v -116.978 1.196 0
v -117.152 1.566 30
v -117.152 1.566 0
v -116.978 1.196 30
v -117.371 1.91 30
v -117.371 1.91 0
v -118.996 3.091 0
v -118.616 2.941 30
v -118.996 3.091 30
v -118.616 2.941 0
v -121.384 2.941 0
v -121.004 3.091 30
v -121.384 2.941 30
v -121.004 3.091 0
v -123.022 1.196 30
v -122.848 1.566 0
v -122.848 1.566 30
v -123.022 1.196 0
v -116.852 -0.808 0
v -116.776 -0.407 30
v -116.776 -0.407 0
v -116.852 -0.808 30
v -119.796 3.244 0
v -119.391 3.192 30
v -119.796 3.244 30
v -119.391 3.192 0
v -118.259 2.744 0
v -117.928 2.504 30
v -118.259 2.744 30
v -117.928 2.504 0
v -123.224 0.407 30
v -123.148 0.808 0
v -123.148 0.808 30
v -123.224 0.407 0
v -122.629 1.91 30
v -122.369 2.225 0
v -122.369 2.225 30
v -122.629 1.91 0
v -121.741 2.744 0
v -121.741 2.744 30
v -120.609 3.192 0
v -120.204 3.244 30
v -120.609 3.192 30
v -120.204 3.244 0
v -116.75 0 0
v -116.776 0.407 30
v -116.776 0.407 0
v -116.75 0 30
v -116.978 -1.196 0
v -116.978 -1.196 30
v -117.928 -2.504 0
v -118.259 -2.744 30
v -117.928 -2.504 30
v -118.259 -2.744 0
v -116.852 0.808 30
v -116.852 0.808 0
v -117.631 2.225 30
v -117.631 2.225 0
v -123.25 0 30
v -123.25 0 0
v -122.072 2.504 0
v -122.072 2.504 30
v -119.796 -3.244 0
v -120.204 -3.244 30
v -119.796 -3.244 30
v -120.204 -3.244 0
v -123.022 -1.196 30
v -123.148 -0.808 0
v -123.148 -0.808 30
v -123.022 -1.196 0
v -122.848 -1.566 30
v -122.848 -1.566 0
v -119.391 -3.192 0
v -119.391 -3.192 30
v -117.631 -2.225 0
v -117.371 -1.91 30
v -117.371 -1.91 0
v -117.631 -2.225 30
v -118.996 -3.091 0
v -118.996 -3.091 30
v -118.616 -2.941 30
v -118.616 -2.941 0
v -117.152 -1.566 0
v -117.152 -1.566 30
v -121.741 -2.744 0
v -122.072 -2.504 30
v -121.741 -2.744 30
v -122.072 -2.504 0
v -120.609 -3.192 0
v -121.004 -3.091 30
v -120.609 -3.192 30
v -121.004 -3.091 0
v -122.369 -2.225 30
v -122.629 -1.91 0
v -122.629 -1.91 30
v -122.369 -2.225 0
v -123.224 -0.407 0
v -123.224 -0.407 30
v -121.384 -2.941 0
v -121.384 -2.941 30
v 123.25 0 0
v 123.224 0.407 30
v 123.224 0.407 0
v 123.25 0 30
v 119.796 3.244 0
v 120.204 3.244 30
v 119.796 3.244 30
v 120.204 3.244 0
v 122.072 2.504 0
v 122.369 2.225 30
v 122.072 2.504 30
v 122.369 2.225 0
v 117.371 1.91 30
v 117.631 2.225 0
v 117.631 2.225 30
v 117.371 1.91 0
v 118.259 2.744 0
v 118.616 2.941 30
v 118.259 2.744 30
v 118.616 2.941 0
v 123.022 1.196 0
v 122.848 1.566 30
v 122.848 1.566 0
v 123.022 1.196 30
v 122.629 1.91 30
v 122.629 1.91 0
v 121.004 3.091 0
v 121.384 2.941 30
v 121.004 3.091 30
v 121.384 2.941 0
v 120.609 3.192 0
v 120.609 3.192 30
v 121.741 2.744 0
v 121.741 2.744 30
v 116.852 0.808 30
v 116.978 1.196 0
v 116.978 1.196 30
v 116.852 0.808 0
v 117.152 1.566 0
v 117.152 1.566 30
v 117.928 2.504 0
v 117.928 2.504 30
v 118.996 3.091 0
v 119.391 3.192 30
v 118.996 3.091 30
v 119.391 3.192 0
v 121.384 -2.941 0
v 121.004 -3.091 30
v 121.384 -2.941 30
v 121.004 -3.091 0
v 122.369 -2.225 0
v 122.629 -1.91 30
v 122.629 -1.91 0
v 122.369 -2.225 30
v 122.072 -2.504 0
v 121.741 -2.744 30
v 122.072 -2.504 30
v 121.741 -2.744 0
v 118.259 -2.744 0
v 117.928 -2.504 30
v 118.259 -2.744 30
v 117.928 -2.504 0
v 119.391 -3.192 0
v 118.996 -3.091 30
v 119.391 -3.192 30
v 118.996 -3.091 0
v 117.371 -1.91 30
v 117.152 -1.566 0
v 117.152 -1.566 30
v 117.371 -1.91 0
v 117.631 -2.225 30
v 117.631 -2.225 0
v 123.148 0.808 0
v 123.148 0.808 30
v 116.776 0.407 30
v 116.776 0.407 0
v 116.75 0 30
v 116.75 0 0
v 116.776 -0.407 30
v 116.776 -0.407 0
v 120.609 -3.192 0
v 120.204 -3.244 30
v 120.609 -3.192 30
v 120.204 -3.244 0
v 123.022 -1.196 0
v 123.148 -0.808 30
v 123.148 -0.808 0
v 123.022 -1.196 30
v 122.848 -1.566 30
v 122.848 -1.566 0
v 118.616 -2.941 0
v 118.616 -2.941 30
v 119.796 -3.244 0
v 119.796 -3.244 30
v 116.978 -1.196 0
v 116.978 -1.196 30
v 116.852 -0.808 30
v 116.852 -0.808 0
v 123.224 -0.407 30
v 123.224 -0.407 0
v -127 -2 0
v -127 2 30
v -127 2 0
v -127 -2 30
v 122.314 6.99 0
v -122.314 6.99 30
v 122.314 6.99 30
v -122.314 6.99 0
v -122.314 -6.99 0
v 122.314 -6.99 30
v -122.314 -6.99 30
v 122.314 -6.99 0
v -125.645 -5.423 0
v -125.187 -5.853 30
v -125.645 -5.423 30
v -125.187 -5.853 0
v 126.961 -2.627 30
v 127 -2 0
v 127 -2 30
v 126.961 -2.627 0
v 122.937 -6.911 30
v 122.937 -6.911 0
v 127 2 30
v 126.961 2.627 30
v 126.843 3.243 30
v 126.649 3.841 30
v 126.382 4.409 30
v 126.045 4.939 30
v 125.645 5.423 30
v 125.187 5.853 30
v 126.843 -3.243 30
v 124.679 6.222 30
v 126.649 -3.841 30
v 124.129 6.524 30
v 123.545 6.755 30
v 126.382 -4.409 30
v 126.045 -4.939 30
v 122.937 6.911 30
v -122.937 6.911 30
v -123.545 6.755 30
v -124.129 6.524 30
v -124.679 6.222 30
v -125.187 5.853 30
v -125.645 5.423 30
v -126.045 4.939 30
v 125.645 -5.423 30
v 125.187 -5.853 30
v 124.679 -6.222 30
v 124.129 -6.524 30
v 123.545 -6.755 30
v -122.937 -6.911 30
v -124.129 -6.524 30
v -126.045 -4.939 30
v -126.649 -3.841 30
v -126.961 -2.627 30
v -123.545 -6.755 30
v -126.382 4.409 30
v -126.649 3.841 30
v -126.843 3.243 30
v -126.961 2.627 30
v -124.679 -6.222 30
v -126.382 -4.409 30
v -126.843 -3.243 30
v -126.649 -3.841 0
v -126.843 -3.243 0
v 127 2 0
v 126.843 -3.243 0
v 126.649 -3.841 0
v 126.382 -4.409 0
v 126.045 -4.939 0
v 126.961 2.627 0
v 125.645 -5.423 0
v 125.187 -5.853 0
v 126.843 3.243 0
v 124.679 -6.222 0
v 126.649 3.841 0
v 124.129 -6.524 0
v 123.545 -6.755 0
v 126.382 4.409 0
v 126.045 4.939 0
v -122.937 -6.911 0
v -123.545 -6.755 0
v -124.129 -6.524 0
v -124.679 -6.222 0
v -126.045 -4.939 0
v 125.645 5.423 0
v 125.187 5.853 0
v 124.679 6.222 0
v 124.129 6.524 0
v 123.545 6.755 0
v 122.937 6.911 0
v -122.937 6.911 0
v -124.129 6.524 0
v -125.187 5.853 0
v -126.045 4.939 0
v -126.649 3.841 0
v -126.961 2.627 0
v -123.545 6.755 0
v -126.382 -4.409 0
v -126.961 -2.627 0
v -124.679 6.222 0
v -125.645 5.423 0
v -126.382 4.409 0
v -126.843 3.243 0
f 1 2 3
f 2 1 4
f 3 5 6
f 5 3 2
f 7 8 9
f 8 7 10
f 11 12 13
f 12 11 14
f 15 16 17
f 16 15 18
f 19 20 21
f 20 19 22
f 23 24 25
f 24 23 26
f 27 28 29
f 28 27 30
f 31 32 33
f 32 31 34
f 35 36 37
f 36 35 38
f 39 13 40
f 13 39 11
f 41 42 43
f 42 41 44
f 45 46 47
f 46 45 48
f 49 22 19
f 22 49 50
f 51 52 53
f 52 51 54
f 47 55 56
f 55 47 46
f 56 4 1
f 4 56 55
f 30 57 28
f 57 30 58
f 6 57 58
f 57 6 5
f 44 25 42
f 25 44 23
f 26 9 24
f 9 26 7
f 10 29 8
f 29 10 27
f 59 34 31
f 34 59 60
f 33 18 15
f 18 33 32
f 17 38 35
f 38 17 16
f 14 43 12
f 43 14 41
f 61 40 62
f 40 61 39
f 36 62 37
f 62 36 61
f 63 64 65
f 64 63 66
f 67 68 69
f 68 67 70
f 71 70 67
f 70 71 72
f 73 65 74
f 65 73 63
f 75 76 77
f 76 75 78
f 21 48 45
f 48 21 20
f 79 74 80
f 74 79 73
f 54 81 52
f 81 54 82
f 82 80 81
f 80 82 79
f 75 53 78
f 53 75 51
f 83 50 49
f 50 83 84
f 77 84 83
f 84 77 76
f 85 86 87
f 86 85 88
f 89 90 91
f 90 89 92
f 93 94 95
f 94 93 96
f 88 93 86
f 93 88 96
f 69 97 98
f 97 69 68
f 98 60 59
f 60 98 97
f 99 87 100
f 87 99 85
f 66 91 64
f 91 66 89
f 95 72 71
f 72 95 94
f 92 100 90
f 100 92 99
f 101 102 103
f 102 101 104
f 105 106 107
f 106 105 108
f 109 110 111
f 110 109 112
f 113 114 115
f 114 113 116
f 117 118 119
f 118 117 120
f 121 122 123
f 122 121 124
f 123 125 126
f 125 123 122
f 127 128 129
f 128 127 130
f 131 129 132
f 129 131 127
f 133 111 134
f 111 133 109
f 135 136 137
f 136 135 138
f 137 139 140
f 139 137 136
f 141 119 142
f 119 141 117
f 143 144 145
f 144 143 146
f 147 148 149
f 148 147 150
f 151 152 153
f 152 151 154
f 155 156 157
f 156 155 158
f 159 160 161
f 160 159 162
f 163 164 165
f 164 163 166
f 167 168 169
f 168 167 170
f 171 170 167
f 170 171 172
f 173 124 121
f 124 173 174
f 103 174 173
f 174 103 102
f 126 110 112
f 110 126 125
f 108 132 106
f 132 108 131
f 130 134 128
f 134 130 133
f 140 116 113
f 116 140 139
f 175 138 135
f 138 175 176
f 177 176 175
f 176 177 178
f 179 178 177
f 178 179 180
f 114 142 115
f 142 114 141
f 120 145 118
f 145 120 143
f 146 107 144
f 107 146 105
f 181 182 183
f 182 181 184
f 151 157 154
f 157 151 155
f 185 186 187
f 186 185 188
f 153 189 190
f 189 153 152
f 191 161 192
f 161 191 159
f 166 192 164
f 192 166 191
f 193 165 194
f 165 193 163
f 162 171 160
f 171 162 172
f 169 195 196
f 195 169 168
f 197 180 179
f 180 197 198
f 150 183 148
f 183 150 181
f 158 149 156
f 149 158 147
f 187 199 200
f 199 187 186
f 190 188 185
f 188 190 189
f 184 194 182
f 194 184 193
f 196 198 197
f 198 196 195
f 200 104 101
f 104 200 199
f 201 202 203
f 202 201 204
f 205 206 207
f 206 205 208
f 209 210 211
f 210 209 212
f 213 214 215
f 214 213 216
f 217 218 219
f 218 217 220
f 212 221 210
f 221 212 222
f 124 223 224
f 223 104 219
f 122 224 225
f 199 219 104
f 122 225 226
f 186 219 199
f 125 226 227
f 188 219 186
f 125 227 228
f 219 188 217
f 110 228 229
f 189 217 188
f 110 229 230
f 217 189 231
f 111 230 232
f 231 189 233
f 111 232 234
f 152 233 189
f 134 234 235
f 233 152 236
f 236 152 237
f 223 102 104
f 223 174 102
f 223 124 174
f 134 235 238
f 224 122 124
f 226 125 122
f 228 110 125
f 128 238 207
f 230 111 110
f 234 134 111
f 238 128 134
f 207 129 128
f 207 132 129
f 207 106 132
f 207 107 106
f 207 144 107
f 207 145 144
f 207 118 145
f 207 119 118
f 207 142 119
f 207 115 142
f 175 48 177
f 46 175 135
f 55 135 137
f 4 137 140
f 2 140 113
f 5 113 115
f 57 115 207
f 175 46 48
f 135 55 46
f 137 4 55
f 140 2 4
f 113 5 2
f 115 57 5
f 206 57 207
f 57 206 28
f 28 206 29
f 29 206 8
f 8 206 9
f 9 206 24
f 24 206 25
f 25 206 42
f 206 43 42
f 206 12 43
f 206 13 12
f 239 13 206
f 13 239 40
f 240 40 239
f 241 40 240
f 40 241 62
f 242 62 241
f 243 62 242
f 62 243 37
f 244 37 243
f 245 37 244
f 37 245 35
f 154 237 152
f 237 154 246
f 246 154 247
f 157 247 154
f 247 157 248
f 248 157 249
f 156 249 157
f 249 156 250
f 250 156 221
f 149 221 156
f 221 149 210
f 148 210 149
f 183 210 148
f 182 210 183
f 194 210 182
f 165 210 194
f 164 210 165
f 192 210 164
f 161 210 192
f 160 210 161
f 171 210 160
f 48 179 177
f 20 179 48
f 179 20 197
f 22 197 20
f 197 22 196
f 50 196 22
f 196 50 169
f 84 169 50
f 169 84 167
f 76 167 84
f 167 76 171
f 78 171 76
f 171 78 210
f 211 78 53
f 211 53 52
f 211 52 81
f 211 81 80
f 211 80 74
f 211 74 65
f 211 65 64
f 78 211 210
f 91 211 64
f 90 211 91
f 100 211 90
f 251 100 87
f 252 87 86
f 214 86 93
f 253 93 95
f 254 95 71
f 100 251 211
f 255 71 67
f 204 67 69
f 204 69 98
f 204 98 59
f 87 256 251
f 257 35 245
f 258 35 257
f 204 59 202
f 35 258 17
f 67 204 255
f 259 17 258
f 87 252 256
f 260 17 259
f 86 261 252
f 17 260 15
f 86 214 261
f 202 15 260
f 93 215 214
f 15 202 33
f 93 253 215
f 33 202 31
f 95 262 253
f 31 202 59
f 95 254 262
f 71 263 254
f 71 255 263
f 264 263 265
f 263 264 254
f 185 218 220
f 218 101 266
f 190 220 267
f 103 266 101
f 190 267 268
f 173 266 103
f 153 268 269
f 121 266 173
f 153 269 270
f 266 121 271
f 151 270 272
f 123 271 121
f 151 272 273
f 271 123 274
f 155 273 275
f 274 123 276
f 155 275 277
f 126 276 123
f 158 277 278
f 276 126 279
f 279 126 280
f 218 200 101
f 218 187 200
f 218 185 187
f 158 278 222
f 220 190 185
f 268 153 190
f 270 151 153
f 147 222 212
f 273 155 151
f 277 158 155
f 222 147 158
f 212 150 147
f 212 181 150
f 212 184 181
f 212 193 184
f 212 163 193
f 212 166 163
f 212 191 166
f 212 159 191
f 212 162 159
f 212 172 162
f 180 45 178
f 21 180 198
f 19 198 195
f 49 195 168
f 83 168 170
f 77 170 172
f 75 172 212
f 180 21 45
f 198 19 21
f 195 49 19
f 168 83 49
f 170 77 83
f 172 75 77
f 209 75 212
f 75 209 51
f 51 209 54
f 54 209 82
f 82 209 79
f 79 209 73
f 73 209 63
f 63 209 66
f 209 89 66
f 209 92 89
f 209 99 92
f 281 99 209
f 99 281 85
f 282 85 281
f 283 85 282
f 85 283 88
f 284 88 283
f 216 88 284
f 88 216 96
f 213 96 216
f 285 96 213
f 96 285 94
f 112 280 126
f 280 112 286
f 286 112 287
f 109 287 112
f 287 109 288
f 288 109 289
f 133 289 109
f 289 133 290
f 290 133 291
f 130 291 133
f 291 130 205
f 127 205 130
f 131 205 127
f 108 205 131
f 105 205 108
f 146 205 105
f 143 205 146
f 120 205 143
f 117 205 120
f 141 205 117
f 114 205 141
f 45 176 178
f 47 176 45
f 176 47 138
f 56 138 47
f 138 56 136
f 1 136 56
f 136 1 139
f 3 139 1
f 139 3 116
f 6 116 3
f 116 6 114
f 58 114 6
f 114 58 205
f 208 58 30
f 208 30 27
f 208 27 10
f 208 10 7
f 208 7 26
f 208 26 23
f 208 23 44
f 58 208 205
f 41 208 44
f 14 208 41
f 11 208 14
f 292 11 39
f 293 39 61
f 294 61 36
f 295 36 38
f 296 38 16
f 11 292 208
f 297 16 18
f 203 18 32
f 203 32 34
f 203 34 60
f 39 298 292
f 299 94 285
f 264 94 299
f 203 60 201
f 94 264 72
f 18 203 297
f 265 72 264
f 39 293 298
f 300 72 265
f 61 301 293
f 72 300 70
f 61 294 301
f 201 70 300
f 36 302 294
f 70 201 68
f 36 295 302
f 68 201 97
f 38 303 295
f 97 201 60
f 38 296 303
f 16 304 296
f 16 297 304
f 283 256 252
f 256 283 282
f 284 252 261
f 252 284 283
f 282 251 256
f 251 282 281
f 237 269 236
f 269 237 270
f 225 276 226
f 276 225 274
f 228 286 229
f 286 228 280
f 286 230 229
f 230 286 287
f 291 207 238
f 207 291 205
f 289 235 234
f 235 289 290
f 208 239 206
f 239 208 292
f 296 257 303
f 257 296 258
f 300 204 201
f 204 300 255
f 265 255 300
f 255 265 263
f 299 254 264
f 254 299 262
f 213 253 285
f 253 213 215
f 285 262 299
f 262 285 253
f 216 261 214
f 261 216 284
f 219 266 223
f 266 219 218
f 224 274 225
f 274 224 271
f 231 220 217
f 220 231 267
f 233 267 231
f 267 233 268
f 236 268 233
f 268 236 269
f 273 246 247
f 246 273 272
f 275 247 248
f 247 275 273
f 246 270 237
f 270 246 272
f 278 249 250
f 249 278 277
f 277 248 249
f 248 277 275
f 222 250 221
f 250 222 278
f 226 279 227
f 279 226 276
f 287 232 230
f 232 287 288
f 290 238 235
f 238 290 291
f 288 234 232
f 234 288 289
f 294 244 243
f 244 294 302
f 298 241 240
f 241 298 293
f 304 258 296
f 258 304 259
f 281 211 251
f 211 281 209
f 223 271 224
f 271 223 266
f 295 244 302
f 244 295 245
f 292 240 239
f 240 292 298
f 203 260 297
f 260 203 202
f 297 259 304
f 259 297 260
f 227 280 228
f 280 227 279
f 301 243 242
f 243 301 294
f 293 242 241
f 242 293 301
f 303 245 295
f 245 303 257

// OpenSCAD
$fn = 50;


difference() {
	union() {
		hull() {
			translate(v = [-122.0000000000, 2.0000000000, 0]) {
				cylinder(h = 30, r = 5);
			}
			translate(v = [122.0000000000, 2.0000000000, 0]) {
				cylinder(h = 30, r = 5);
			}
			translate(v = [-122.0000000000, -2.0000000000, 0]) {
				cylinder(h = 30, r = 5);
			}
			translate(v = [122.0000000000, -2.0000000000, 0]) {
				cylinder(h = 30, r = 5);
			}
		}
	}
	union() {
		translate(v = [-120.0000000000, 0.0000000000, -100.0000000000]) {
			cylinder(h = 200, r = 3.2500000000);
		}
		translate(v = [-120.0000000000, 0.0000000000, -100.0000000000]) {
			cylinder(h = 200, r = 3.2500000000);
		}
		translate(v = [120.0000000000, 0.0000000000, -100.0000000000]) {
			cylinder(h = 200, r = 3.2500000000);
		}
		translate(v = [120.0000000000, 0.0000000000, -100.0000000000]) {
			cylinder(h = 200, r = 3.2500000000);
		}
	}
}
